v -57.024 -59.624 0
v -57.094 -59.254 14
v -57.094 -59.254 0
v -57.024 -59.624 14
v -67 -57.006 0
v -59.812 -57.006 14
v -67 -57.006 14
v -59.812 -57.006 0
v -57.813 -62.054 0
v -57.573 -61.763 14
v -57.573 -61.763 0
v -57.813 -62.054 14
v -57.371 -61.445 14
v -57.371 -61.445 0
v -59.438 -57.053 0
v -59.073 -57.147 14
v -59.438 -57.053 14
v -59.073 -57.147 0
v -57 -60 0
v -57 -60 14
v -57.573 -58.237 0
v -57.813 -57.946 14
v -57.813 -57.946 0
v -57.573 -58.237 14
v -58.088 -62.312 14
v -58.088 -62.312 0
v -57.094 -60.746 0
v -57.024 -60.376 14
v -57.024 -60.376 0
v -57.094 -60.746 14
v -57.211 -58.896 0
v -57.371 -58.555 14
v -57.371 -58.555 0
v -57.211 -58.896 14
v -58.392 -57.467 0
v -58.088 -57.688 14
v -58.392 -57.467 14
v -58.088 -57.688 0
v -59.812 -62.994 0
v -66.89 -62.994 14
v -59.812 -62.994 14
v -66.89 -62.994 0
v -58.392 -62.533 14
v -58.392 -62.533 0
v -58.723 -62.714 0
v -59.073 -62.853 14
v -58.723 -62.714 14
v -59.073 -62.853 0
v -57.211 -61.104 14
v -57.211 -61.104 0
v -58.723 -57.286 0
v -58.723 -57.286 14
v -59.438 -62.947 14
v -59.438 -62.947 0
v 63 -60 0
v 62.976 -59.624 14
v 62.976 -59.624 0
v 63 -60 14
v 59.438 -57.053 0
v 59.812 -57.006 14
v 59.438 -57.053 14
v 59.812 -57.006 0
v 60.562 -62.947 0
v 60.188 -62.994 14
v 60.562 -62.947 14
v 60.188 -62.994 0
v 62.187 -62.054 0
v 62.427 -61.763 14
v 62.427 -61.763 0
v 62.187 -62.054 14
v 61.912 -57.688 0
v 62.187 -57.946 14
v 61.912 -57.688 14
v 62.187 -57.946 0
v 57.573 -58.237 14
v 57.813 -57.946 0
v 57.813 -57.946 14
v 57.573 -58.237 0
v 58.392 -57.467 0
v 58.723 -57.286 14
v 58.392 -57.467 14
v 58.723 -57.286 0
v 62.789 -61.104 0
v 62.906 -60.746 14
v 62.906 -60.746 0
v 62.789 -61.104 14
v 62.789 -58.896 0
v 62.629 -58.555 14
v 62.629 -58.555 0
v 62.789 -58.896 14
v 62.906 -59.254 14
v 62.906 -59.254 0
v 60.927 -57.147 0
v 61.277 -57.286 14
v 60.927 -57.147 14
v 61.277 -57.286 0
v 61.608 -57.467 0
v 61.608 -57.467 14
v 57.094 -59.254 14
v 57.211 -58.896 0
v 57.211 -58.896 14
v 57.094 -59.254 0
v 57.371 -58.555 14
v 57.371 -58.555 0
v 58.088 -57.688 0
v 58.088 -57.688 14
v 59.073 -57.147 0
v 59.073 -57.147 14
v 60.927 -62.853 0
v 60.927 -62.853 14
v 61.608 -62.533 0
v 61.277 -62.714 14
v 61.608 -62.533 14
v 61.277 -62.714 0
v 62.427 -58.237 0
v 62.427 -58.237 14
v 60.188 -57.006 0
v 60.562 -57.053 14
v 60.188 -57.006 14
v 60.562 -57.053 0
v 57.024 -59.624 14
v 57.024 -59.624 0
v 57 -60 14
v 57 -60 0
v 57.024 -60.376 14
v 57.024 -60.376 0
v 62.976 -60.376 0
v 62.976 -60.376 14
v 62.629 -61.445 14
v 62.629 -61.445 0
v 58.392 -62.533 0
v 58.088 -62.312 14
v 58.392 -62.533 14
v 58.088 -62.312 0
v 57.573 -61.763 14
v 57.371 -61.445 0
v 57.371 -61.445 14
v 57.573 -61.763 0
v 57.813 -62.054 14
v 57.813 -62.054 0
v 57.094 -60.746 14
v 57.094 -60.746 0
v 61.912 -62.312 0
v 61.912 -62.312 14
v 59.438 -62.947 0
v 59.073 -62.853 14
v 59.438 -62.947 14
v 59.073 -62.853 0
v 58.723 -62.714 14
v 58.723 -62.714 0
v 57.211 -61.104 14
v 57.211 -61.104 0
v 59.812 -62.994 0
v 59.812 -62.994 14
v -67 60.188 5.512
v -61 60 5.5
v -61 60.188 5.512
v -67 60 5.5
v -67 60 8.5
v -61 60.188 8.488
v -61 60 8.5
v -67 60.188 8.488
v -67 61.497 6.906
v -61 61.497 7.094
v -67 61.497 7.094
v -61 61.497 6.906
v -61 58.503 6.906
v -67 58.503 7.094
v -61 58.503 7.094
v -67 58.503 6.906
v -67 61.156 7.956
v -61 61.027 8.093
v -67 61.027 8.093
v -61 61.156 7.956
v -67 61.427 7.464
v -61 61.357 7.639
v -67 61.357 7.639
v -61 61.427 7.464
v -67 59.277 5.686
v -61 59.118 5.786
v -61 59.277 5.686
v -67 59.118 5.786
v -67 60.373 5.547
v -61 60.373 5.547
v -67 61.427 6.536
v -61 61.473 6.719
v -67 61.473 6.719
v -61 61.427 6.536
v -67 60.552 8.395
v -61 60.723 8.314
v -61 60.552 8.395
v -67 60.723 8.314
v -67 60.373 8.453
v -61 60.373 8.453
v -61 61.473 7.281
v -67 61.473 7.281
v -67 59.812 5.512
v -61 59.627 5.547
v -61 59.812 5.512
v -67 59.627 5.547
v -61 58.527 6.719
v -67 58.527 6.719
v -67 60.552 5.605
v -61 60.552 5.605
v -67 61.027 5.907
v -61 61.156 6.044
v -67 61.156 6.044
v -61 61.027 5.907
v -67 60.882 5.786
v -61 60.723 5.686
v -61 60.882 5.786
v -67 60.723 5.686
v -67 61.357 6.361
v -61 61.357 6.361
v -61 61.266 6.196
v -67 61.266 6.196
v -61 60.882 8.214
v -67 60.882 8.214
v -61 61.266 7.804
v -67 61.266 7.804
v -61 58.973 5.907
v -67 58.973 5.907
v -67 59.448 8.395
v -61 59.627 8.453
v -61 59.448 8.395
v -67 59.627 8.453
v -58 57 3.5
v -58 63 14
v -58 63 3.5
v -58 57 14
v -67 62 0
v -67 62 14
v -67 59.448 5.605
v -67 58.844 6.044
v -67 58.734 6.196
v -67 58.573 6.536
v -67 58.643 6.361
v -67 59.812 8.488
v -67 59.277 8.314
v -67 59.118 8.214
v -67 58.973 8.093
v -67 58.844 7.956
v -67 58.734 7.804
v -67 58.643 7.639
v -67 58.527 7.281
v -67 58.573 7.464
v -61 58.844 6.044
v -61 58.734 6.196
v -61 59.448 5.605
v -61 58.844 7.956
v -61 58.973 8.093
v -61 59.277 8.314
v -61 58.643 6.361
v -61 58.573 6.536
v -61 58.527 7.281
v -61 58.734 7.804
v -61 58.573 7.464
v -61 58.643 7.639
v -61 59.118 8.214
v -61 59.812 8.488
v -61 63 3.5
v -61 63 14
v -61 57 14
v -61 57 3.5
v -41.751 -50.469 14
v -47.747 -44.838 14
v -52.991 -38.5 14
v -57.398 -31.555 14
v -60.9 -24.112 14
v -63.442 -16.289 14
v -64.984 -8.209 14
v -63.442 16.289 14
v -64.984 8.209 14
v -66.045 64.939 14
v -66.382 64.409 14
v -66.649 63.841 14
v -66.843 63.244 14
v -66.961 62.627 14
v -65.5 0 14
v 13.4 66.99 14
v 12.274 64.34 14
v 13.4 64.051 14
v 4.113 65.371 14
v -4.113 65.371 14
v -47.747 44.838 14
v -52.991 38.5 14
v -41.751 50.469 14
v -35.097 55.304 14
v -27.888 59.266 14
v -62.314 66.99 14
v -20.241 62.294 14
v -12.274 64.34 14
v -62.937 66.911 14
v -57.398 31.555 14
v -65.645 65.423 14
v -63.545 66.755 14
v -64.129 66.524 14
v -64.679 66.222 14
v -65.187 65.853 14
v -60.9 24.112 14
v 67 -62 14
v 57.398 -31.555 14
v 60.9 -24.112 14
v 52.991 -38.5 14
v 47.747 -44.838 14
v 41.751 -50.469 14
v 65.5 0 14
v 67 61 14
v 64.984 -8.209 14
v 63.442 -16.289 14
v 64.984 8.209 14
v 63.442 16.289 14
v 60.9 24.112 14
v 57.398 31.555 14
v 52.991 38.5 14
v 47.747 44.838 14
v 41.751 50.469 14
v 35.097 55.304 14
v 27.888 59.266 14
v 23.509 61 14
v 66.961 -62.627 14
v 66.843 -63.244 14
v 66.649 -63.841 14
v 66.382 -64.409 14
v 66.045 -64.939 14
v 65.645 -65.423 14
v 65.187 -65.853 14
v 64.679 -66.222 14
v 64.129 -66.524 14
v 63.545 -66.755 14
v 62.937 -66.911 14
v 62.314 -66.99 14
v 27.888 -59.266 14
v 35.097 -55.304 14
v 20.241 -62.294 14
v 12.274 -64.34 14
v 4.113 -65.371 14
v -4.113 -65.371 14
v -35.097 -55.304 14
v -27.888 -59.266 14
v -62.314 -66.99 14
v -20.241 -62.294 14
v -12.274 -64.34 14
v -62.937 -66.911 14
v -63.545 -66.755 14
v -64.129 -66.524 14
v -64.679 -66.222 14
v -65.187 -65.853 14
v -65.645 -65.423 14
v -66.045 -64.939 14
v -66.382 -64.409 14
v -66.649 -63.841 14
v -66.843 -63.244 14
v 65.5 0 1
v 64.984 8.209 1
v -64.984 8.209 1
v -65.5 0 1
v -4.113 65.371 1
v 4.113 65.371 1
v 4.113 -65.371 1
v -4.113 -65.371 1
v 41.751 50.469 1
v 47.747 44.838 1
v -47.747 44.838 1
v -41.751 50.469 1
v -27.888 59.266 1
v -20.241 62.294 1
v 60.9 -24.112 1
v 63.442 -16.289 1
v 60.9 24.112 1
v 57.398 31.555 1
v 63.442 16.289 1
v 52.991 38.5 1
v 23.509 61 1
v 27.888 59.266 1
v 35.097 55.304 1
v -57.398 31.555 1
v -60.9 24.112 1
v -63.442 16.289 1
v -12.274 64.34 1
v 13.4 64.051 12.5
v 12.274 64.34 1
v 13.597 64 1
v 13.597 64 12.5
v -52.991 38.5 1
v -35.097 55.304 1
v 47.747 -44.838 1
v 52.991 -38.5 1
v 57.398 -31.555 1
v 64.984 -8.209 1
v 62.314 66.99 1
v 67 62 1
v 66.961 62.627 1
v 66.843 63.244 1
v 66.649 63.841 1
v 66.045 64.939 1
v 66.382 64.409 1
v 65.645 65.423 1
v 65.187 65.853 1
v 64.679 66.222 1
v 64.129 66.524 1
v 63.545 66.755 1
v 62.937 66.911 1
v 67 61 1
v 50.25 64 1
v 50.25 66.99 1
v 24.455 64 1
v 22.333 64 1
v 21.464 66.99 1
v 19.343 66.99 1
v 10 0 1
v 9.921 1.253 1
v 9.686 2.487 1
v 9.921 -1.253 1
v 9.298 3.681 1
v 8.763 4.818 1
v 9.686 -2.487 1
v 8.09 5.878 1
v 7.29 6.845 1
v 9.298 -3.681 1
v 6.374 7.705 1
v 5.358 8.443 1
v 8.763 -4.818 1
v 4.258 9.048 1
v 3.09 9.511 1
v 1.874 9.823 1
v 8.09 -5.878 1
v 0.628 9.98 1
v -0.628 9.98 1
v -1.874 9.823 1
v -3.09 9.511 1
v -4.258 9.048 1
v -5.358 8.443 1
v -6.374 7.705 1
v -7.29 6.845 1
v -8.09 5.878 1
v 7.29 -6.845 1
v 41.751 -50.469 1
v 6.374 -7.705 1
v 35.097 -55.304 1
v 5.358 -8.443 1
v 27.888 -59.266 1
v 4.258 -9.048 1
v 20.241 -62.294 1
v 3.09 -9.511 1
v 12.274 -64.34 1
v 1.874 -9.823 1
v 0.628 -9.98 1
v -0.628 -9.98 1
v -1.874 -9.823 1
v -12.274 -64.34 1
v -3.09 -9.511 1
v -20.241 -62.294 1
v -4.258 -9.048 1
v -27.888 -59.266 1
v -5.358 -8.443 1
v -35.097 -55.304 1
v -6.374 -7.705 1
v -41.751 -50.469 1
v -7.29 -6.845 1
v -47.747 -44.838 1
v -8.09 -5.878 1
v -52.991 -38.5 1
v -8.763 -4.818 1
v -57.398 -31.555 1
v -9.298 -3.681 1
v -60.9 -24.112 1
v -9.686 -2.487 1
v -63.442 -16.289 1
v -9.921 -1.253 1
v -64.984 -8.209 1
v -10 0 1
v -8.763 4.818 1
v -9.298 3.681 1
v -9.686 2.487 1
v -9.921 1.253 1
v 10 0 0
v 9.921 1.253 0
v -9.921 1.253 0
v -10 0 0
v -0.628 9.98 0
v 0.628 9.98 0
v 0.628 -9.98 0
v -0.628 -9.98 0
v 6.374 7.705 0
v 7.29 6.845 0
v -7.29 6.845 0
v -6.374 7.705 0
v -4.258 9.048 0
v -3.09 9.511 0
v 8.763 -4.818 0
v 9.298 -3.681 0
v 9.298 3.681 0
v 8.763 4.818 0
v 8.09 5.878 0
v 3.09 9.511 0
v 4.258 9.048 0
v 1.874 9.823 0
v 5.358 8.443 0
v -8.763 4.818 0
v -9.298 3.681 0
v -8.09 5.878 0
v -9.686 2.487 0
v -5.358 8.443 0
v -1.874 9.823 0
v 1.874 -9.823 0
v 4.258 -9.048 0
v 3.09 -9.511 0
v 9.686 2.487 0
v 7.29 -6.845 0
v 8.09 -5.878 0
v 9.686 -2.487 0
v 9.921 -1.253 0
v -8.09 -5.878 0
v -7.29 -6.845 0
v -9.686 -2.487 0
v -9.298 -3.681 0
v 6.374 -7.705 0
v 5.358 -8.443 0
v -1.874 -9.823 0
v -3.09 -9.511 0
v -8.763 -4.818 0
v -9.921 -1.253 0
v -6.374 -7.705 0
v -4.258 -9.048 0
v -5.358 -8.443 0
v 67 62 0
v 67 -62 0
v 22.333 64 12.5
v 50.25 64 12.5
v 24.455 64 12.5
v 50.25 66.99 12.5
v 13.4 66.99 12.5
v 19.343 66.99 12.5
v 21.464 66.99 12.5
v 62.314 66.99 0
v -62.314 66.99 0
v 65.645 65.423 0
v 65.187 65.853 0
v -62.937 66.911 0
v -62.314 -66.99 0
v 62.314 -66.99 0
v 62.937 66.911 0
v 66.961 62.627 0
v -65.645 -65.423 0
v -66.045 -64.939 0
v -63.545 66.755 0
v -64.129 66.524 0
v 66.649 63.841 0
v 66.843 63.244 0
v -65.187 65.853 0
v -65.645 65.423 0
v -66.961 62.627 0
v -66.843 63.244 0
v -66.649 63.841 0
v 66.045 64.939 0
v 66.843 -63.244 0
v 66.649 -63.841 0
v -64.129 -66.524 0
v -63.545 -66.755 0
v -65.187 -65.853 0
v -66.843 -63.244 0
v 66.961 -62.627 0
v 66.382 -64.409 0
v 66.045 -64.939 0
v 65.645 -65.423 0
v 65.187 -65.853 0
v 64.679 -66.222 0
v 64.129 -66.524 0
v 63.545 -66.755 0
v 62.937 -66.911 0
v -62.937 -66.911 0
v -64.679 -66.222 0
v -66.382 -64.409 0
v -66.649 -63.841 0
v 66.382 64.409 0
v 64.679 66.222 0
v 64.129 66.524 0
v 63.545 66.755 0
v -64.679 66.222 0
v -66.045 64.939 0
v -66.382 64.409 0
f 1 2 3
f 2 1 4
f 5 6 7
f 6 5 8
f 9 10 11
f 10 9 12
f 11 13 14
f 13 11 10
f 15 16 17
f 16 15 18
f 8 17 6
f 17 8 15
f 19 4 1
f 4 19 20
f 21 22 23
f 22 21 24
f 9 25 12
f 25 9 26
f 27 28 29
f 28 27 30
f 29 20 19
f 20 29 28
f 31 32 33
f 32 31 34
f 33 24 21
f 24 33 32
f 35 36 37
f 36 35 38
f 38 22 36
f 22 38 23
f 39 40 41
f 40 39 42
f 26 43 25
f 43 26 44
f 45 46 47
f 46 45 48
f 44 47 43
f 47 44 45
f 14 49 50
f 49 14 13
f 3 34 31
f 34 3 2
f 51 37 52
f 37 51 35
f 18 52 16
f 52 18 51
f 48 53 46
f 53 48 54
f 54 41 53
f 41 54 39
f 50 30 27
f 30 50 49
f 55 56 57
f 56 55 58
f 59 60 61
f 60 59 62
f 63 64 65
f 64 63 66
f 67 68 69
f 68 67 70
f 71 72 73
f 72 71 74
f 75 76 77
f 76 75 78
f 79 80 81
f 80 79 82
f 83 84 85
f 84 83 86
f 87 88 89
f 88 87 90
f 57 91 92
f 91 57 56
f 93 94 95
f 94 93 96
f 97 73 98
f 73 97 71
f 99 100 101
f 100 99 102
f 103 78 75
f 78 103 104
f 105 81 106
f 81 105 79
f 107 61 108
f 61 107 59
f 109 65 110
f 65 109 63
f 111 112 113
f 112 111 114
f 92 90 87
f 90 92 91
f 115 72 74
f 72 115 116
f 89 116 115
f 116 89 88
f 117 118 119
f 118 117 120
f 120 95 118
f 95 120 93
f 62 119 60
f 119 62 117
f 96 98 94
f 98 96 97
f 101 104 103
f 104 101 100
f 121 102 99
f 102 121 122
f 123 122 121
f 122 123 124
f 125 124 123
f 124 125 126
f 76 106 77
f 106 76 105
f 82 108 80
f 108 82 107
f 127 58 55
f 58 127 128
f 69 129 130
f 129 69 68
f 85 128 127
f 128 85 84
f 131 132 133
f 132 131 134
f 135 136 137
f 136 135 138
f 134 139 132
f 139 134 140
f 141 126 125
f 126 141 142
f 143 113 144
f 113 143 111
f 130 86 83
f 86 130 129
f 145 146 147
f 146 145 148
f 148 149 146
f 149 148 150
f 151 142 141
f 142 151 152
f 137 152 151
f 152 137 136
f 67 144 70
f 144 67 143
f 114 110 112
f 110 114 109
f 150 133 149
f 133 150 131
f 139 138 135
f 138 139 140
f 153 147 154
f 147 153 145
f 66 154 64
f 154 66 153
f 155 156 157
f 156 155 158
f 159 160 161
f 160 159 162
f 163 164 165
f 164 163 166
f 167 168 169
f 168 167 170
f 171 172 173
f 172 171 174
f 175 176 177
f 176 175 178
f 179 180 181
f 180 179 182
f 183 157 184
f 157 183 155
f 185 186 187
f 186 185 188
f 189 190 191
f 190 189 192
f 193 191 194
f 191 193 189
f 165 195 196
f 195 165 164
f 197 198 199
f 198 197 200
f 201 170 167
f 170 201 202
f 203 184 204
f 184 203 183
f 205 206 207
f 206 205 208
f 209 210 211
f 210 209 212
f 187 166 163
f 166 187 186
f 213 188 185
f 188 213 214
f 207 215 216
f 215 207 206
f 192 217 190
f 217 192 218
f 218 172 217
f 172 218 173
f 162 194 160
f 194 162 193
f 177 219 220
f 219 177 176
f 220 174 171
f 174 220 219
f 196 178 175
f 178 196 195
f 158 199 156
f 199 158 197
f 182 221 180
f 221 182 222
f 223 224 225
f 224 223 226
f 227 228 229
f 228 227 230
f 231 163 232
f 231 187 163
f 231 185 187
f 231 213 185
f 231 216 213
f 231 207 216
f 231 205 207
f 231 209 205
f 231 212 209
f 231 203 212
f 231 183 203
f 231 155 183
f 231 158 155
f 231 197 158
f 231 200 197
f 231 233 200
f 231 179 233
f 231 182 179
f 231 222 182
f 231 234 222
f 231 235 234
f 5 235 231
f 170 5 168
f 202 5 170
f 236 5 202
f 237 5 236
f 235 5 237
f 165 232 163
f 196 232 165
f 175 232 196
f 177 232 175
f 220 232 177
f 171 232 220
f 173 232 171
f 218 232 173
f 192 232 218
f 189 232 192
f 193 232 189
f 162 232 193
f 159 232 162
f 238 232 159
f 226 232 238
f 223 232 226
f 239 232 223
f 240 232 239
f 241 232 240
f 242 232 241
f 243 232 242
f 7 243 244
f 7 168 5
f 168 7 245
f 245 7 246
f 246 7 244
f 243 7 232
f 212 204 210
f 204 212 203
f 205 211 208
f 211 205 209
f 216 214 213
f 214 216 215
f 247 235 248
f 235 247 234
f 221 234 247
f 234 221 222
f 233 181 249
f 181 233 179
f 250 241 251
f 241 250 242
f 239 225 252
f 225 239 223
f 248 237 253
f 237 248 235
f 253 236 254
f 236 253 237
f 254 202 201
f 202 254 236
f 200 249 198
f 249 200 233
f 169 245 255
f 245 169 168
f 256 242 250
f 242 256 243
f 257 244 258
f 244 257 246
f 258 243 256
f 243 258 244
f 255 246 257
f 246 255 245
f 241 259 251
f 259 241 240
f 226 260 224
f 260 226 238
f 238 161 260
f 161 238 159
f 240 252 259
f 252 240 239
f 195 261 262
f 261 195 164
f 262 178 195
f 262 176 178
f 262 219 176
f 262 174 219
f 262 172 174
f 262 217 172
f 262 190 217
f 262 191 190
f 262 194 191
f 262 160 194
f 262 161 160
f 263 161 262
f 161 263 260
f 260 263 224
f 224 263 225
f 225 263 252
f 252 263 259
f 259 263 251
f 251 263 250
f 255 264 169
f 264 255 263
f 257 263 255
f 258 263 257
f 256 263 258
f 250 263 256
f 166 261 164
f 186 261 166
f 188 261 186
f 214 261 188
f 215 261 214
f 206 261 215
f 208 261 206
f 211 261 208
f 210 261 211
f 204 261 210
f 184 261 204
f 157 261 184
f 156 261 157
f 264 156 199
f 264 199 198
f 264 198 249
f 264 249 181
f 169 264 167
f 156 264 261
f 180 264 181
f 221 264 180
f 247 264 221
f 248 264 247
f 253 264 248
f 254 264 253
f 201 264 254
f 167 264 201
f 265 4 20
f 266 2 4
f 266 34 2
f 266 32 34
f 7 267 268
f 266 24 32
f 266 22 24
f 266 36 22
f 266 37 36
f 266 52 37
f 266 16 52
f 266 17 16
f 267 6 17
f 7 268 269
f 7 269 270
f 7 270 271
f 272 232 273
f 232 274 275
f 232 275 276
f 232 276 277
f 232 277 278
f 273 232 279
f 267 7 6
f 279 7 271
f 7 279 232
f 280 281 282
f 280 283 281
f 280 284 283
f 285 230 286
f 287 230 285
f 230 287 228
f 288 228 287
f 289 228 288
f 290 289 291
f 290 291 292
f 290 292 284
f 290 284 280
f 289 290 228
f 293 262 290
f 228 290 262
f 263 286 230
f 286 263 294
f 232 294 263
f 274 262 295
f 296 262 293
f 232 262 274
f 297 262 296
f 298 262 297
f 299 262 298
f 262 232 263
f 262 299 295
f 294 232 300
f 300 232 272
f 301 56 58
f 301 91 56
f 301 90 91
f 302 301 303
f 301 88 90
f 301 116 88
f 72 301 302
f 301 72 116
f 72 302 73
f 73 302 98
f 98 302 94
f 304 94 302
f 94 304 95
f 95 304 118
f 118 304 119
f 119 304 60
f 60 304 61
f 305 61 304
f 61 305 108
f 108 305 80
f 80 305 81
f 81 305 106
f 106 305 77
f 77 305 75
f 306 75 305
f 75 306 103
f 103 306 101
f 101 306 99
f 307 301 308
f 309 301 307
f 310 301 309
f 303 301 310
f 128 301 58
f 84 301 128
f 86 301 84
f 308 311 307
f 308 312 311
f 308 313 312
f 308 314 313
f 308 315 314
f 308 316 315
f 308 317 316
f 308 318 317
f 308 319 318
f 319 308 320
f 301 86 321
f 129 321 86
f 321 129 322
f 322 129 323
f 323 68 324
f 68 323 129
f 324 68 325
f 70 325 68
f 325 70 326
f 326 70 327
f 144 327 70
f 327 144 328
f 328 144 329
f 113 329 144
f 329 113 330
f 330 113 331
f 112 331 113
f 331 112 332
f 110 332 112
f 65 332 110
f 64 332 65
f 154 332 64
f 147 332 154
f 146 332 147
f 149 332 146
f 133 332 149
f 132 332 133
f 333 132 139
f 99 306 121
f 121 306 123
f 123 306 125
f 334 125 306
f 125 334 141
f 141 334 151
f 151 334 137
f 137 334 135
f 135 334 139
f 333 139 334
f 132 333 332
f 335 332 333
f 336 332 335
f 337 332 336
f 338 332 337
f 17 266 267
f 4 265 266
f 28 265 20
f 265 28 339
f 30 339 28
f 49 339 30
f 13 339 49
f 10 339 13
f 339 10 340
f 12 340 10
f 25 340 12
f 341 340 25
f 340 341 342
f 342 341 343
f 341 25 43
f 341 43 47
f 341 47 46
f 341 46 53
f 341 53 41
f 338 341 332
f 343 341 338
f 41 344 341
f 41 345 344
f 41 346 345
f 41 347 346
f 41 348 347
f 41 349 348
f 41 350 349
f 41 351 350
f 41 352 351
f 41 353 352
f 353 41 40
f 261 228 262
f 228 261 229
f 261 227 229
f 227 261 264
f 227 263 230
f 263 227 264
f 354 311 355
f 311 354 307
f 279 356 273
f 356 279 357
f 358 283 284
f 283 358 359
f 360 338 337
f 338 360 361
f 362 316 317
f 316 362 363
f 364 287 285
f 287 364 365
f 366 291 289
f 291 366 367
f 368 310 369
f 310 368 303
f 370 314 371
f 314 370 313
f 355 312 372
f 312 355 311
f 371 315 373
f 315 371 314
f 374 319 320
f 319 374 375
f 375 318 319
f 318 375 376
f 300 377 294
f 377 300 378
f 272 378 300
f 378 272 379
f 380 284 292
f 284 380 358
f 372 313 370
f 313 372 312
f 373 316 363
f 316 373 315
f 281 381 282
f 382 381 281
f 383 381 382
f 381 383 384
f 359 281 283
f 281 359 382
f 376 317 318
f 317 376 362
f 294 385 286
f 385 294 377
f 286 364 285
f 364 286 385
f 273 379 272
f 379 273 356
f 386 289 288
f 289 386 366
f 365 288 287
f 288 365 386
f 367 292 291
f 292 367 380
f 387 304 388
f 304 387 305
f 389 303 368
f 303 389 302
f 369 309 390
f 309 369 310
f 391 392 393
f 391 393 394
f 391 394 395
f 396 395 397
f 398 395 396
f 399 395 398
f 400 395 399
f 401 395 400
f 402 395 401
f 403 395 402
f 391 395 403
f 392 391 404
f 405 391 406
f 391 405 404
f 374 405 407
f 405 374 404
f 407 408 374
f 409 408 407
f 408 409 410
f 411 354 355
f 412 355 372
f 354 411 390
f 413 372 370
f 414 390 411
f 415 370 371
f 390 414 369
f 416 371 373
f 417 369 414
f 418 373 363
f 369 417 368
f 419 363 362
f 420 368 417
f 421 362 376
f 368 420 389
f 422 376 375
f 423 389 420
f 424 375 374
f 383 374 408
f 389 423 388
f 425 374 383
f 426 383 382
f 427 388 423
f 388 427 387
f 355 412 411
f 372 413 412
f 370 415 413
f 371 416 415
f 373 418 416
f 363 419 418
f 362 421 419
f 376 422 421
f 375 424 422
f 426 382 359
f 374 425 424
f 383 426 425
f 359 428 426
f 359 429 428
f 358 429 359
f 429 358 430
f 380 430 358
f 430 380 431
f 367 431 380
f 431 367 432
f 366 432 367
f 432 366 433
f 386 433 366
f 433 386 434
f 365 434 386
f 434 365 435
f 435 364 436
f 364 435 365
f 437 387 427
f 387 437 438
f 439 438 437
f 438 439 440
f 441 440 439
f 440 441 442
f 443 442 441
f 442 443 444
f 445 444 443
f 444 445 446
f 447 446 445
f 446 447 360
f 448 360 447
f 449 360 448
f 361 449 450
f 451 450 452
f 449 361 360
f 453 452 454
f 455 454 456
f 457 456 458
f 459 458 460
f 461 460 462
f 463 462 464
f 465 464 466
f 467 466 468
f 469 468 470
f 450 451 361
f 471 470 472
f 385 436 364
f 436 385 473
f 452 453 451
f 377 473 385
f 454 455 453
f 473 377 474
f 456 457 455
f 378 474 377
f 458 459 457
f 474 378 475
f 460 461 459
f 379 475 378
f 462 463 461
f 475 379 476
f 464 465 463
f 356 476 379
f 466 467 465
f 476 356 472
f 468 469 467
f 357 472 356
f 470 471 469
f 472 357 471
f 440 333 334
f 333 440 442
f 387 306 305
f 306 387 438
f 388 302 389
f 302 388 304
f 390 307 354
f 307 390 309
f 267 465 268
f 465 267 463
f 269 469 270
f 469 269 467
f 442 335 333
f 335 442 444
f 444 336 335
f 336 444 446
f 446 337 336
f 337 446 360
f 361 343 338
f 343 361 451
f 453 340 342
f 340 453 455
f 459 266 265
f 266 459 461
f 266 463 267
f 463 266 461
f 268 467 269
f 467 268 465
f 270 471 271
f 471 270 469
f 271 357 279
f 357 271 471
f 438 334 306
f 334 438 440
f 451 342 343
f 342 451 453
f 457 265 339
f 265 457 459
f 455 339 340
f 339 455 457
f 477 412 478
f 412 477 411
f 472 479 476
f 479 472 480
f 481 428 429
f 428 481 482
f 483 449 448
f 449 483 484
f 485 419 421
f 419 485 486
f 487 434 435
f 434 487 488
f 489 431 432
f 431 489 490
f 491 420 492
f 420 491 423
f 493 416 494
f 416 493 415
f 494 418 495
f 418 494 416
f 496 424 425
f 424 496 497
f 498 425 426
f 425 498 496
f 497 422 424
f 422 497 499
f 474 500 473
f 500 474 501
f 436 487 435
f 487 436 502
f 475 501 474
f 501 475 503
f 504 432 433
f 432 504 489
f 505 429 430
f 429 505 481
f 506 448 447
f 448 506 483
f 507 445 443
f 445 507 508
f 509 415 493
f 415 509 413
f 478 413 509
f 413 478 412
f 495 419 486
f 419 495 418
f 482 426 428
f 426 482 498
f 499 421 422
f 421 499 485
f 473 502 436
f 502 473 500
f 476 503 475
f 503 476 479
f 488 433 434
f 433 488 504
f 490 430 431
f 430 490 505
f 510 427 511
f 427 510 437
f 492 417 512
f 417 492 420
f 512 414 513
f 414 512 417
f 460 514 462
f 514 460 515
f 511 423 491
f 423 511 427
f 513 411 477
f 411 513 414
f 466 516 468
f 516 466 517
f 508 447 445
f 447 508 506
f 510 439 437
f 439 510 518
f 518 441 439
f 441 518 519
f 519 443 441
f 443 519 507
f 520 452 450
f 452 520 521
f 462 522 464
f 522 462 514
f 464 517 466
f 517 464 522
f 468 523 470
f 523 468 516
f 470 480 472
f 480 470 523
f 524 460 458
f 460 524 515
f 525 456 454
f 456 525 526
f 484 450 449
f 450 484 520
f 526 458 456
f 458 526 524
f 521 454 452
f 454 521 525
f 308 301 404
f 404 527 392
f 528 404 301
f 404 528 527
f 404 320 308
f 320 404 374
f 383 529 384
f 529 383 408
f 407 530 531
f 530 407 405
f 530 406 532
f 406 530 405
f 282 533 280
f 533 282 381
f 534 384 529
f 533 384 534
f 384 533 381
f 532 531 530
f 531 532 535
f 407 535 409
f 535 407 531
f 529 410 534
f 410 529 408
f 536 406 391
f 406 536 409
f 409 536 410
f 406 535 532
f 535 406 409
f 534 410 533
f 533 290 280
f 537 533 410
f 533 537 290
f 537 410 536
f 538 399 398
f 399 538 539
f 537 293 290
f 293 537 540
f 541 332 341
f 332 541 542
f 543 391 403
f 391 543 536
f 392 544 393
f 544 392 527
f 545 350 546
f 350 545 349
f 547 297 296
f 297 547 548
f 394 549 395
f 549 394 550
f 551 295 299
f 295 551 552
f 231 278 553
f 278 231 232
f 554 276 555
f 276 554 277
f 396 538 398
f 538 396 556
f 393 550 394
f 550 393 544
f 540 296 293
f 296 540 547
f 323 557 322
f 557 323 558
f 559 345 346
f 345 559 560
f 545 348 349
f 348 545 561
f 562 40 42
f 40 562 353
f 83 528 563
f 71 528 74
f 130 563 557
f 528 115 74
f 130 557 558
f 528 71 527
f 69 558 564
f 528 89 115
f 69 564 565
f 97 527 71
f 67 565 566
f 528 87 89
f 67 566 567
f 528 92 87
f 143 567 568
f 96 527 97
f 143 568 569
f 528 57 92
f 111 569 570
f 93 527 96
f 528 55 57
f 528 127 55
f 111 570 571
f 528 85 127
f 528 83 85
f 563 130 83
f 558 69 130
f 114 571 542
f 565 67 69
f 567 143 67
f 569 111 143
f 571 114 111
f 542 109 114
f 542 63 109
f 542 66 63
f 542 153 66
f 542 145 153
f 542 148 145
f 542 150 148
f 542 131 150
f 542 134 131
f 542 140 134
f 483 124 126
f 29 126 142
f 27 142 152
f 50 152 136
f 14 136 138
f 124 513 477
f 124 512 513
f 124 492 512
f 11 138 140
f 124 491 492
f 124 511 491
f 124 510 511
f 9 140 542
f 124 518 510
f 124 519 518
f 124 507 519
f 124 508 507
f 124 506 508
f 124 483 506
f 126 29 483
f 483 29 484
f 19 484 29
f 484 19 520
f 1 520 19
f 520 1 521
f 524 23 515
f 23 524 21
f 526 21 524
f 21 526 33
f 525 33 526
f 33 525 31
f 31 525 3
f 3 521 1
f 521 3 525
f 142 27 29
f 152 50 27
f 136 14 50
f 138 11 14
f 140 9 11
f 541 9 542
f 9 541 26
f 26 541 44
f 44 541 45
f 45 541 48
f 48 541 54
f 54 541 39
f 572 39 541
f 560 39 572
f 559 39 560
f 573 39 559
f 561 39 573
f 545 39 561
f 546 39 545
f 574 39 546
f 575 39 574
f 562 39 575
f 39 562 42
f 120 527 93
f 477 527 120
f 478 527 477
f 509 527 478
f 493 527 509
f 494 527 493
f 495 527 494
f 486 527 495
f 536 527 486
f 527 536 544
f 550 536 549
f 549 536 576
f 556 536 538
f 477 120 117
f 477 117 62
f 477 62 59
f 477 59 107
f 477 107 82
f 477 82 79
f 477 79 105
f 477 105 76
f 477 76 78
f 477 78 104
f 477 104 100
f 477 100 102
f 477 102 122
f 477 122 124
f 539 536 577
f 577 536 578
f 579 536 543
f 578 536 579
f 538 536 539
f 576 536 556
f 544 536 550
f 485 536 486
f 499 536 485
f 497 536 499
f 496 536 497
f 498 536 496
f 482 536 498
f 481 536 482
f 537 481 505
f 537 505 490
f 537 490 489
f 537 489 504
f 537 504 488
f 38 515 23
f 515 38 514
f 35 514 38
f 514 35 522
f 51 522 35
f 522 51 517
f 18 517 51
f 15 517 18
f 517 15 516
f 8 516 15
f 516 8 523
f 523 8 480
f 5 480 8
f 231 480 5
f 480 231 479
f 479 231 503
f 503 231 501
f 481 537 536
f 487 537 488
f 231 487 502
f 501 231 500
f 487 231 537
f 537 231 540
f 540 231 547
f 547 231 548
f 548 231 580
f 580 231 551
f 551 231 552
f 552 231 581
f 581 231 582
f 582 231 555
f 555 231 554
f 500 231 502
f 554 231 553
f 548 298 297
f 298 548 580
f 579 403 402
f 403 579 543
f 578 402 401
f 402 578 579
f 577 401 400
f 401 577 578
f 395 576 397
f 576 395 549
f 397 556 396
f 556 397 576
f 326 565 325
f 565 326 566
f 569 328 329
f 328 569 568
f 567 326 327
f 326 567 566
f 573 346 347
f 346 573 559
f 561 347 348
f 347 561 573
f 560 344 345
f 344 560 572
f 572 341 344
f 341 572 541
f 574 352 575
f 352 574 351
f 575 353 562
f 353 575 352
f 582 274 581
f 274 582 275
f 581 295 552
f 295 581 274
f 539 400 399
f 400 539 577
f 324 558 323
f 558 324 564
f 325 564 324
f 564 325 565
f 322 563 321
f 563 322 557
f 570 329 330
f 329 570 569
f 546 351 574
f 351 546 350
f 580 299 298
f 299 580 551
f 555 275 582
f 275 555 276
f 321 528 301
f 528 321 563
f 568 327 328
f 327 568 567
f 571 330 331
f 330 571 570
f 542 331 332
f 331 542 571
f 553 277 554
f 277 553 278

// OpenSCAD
$fn = 50;


difference() {
	union() {
		translate(v = [0, 0, 0]) {
			rotate(a = [0, 0, 0]) {
				hull() {
					translate(v = [-62.0000000000, 62.0000000000, 0]) {
						rotate(a = [0, 0, 0]) {
							translate(v = [0, 0, 0]) {
								rotate(a = [0, 0, 0]) {
									cylinder(h = 14, r = 5);
								}
							}
						}
					}
					translate(v = [62.0000000000, 62.0000000000, 0]) {
						rotate(a = [0, 0, 0]) {
							translate(v = [0, 0, 0]) {
								rotate(a = [0, 0, 0]) {
									cylinder(h = 14, r = 5);
								}
							}
						}
					}
					translate(v = [-62.0000000000, -62.0000000000, 0]) {
						rotate(a = [0, 0, 0]) {
							translate(v = [0, 0, 0]) {
								rotate(a = [0, 0, 0]) {
									cylinder(h = 14, r = 5);
								}
							}
						}
					}
					translate(v = [62.0000000000, -62.0000000000, 0]) {
						rotate(a = [0, 0, 0]) {
							translate(v = [0, 0, 0]) {
								rotate(a = [0, 0, 0]) {
									cylinder(h = 14, r = 5);
								}
							}
						}
					}
				}
			}
		}
	}
	union() {
		translate(v = [-67.5000000000, -60.0000000000, -125]) {
			rotate(a = [0, 0, 0]) {
				hull() {
					translate(v = [7.5000000000, 0, 0]) {
						rotate(a = [0, 0, 0]) {
							translate(v = [0, 0, 0]) {
								rotate(a = [0, 0, 0]) {
									cylinder(h = 250, r = 3.0000000000);
								}
							}
						}
					}
					translate(v = [-7.5000000000, 0, 0]) {
						rotate(a = [0, 0, 0]) {
							translate(v = [0, 0, 0]) {
								rotate(a = [0, 0, 0]) {
									cylinder(h = 250, r = 3.0000000000);
								}
							}
						}
					}
				}
			}
		}
		translate(v = [60.0000000000, -60.0000000000, -125.0000000000]) {
			rotate(a = [0, 0, 0]) {
				cylinder(h = 250, r = 3.0000000000);
			}
		}
		translate(v = [-67.0000000000, 60.0000000000, 7.0000000000]) {
			rotate(a = [0, 90, 0]) {
				cylinder(h = 9, r = 1.5000000000);
			}
		}
		translate(v = [-61.0000000000, 57.0000000000, 3.5000000000]) {
			rotate(a = [0, 0, 0]) {
				cube(size = [3, 6, 10.5000000000]);
			}
		}
		translate(v = [0, 0, 1.0000000000]) {
			rotate(a = [0, 0, 0]) {
				cylinder(h = 16, r = 65.5000000000);
			}
		}
		translate(v = [0, 0, -7.0000000000]) {
			rotate(a = [0, 0, 0]) {
				cylinder(h = 14, r = 10.0000000000);
			}
		}
		translate(v = [0.0000000000, 61.0000000000, 1]) {
			rotate(a = [0, 0, 0]) {
				cube(size = [67.0000000000, 3, 16]);
			}
		}
		translate(v = [50.2500000000, 61.0000000000, 1]) {
			rotate(a = [0, 0, 0]) {
				cube(size = [16.7500000000, 6, 16]);
			}
		}
		translate(v = [13.4000000000, 61.0000000000, 12.5000000000]) {
			rotate(a = [0, 0, 0]) {
				cube(size = [53.6000000000, 6, 1.5000000000]);
			}
		}
		translate(v = [18.5833333333, 67.7500000000, 1]) {
			rotate(a = [0, 0, -45]) {
				cube(size = [7.5000000000, 1.5000000000, 16]);
			}
		}
	}
}
